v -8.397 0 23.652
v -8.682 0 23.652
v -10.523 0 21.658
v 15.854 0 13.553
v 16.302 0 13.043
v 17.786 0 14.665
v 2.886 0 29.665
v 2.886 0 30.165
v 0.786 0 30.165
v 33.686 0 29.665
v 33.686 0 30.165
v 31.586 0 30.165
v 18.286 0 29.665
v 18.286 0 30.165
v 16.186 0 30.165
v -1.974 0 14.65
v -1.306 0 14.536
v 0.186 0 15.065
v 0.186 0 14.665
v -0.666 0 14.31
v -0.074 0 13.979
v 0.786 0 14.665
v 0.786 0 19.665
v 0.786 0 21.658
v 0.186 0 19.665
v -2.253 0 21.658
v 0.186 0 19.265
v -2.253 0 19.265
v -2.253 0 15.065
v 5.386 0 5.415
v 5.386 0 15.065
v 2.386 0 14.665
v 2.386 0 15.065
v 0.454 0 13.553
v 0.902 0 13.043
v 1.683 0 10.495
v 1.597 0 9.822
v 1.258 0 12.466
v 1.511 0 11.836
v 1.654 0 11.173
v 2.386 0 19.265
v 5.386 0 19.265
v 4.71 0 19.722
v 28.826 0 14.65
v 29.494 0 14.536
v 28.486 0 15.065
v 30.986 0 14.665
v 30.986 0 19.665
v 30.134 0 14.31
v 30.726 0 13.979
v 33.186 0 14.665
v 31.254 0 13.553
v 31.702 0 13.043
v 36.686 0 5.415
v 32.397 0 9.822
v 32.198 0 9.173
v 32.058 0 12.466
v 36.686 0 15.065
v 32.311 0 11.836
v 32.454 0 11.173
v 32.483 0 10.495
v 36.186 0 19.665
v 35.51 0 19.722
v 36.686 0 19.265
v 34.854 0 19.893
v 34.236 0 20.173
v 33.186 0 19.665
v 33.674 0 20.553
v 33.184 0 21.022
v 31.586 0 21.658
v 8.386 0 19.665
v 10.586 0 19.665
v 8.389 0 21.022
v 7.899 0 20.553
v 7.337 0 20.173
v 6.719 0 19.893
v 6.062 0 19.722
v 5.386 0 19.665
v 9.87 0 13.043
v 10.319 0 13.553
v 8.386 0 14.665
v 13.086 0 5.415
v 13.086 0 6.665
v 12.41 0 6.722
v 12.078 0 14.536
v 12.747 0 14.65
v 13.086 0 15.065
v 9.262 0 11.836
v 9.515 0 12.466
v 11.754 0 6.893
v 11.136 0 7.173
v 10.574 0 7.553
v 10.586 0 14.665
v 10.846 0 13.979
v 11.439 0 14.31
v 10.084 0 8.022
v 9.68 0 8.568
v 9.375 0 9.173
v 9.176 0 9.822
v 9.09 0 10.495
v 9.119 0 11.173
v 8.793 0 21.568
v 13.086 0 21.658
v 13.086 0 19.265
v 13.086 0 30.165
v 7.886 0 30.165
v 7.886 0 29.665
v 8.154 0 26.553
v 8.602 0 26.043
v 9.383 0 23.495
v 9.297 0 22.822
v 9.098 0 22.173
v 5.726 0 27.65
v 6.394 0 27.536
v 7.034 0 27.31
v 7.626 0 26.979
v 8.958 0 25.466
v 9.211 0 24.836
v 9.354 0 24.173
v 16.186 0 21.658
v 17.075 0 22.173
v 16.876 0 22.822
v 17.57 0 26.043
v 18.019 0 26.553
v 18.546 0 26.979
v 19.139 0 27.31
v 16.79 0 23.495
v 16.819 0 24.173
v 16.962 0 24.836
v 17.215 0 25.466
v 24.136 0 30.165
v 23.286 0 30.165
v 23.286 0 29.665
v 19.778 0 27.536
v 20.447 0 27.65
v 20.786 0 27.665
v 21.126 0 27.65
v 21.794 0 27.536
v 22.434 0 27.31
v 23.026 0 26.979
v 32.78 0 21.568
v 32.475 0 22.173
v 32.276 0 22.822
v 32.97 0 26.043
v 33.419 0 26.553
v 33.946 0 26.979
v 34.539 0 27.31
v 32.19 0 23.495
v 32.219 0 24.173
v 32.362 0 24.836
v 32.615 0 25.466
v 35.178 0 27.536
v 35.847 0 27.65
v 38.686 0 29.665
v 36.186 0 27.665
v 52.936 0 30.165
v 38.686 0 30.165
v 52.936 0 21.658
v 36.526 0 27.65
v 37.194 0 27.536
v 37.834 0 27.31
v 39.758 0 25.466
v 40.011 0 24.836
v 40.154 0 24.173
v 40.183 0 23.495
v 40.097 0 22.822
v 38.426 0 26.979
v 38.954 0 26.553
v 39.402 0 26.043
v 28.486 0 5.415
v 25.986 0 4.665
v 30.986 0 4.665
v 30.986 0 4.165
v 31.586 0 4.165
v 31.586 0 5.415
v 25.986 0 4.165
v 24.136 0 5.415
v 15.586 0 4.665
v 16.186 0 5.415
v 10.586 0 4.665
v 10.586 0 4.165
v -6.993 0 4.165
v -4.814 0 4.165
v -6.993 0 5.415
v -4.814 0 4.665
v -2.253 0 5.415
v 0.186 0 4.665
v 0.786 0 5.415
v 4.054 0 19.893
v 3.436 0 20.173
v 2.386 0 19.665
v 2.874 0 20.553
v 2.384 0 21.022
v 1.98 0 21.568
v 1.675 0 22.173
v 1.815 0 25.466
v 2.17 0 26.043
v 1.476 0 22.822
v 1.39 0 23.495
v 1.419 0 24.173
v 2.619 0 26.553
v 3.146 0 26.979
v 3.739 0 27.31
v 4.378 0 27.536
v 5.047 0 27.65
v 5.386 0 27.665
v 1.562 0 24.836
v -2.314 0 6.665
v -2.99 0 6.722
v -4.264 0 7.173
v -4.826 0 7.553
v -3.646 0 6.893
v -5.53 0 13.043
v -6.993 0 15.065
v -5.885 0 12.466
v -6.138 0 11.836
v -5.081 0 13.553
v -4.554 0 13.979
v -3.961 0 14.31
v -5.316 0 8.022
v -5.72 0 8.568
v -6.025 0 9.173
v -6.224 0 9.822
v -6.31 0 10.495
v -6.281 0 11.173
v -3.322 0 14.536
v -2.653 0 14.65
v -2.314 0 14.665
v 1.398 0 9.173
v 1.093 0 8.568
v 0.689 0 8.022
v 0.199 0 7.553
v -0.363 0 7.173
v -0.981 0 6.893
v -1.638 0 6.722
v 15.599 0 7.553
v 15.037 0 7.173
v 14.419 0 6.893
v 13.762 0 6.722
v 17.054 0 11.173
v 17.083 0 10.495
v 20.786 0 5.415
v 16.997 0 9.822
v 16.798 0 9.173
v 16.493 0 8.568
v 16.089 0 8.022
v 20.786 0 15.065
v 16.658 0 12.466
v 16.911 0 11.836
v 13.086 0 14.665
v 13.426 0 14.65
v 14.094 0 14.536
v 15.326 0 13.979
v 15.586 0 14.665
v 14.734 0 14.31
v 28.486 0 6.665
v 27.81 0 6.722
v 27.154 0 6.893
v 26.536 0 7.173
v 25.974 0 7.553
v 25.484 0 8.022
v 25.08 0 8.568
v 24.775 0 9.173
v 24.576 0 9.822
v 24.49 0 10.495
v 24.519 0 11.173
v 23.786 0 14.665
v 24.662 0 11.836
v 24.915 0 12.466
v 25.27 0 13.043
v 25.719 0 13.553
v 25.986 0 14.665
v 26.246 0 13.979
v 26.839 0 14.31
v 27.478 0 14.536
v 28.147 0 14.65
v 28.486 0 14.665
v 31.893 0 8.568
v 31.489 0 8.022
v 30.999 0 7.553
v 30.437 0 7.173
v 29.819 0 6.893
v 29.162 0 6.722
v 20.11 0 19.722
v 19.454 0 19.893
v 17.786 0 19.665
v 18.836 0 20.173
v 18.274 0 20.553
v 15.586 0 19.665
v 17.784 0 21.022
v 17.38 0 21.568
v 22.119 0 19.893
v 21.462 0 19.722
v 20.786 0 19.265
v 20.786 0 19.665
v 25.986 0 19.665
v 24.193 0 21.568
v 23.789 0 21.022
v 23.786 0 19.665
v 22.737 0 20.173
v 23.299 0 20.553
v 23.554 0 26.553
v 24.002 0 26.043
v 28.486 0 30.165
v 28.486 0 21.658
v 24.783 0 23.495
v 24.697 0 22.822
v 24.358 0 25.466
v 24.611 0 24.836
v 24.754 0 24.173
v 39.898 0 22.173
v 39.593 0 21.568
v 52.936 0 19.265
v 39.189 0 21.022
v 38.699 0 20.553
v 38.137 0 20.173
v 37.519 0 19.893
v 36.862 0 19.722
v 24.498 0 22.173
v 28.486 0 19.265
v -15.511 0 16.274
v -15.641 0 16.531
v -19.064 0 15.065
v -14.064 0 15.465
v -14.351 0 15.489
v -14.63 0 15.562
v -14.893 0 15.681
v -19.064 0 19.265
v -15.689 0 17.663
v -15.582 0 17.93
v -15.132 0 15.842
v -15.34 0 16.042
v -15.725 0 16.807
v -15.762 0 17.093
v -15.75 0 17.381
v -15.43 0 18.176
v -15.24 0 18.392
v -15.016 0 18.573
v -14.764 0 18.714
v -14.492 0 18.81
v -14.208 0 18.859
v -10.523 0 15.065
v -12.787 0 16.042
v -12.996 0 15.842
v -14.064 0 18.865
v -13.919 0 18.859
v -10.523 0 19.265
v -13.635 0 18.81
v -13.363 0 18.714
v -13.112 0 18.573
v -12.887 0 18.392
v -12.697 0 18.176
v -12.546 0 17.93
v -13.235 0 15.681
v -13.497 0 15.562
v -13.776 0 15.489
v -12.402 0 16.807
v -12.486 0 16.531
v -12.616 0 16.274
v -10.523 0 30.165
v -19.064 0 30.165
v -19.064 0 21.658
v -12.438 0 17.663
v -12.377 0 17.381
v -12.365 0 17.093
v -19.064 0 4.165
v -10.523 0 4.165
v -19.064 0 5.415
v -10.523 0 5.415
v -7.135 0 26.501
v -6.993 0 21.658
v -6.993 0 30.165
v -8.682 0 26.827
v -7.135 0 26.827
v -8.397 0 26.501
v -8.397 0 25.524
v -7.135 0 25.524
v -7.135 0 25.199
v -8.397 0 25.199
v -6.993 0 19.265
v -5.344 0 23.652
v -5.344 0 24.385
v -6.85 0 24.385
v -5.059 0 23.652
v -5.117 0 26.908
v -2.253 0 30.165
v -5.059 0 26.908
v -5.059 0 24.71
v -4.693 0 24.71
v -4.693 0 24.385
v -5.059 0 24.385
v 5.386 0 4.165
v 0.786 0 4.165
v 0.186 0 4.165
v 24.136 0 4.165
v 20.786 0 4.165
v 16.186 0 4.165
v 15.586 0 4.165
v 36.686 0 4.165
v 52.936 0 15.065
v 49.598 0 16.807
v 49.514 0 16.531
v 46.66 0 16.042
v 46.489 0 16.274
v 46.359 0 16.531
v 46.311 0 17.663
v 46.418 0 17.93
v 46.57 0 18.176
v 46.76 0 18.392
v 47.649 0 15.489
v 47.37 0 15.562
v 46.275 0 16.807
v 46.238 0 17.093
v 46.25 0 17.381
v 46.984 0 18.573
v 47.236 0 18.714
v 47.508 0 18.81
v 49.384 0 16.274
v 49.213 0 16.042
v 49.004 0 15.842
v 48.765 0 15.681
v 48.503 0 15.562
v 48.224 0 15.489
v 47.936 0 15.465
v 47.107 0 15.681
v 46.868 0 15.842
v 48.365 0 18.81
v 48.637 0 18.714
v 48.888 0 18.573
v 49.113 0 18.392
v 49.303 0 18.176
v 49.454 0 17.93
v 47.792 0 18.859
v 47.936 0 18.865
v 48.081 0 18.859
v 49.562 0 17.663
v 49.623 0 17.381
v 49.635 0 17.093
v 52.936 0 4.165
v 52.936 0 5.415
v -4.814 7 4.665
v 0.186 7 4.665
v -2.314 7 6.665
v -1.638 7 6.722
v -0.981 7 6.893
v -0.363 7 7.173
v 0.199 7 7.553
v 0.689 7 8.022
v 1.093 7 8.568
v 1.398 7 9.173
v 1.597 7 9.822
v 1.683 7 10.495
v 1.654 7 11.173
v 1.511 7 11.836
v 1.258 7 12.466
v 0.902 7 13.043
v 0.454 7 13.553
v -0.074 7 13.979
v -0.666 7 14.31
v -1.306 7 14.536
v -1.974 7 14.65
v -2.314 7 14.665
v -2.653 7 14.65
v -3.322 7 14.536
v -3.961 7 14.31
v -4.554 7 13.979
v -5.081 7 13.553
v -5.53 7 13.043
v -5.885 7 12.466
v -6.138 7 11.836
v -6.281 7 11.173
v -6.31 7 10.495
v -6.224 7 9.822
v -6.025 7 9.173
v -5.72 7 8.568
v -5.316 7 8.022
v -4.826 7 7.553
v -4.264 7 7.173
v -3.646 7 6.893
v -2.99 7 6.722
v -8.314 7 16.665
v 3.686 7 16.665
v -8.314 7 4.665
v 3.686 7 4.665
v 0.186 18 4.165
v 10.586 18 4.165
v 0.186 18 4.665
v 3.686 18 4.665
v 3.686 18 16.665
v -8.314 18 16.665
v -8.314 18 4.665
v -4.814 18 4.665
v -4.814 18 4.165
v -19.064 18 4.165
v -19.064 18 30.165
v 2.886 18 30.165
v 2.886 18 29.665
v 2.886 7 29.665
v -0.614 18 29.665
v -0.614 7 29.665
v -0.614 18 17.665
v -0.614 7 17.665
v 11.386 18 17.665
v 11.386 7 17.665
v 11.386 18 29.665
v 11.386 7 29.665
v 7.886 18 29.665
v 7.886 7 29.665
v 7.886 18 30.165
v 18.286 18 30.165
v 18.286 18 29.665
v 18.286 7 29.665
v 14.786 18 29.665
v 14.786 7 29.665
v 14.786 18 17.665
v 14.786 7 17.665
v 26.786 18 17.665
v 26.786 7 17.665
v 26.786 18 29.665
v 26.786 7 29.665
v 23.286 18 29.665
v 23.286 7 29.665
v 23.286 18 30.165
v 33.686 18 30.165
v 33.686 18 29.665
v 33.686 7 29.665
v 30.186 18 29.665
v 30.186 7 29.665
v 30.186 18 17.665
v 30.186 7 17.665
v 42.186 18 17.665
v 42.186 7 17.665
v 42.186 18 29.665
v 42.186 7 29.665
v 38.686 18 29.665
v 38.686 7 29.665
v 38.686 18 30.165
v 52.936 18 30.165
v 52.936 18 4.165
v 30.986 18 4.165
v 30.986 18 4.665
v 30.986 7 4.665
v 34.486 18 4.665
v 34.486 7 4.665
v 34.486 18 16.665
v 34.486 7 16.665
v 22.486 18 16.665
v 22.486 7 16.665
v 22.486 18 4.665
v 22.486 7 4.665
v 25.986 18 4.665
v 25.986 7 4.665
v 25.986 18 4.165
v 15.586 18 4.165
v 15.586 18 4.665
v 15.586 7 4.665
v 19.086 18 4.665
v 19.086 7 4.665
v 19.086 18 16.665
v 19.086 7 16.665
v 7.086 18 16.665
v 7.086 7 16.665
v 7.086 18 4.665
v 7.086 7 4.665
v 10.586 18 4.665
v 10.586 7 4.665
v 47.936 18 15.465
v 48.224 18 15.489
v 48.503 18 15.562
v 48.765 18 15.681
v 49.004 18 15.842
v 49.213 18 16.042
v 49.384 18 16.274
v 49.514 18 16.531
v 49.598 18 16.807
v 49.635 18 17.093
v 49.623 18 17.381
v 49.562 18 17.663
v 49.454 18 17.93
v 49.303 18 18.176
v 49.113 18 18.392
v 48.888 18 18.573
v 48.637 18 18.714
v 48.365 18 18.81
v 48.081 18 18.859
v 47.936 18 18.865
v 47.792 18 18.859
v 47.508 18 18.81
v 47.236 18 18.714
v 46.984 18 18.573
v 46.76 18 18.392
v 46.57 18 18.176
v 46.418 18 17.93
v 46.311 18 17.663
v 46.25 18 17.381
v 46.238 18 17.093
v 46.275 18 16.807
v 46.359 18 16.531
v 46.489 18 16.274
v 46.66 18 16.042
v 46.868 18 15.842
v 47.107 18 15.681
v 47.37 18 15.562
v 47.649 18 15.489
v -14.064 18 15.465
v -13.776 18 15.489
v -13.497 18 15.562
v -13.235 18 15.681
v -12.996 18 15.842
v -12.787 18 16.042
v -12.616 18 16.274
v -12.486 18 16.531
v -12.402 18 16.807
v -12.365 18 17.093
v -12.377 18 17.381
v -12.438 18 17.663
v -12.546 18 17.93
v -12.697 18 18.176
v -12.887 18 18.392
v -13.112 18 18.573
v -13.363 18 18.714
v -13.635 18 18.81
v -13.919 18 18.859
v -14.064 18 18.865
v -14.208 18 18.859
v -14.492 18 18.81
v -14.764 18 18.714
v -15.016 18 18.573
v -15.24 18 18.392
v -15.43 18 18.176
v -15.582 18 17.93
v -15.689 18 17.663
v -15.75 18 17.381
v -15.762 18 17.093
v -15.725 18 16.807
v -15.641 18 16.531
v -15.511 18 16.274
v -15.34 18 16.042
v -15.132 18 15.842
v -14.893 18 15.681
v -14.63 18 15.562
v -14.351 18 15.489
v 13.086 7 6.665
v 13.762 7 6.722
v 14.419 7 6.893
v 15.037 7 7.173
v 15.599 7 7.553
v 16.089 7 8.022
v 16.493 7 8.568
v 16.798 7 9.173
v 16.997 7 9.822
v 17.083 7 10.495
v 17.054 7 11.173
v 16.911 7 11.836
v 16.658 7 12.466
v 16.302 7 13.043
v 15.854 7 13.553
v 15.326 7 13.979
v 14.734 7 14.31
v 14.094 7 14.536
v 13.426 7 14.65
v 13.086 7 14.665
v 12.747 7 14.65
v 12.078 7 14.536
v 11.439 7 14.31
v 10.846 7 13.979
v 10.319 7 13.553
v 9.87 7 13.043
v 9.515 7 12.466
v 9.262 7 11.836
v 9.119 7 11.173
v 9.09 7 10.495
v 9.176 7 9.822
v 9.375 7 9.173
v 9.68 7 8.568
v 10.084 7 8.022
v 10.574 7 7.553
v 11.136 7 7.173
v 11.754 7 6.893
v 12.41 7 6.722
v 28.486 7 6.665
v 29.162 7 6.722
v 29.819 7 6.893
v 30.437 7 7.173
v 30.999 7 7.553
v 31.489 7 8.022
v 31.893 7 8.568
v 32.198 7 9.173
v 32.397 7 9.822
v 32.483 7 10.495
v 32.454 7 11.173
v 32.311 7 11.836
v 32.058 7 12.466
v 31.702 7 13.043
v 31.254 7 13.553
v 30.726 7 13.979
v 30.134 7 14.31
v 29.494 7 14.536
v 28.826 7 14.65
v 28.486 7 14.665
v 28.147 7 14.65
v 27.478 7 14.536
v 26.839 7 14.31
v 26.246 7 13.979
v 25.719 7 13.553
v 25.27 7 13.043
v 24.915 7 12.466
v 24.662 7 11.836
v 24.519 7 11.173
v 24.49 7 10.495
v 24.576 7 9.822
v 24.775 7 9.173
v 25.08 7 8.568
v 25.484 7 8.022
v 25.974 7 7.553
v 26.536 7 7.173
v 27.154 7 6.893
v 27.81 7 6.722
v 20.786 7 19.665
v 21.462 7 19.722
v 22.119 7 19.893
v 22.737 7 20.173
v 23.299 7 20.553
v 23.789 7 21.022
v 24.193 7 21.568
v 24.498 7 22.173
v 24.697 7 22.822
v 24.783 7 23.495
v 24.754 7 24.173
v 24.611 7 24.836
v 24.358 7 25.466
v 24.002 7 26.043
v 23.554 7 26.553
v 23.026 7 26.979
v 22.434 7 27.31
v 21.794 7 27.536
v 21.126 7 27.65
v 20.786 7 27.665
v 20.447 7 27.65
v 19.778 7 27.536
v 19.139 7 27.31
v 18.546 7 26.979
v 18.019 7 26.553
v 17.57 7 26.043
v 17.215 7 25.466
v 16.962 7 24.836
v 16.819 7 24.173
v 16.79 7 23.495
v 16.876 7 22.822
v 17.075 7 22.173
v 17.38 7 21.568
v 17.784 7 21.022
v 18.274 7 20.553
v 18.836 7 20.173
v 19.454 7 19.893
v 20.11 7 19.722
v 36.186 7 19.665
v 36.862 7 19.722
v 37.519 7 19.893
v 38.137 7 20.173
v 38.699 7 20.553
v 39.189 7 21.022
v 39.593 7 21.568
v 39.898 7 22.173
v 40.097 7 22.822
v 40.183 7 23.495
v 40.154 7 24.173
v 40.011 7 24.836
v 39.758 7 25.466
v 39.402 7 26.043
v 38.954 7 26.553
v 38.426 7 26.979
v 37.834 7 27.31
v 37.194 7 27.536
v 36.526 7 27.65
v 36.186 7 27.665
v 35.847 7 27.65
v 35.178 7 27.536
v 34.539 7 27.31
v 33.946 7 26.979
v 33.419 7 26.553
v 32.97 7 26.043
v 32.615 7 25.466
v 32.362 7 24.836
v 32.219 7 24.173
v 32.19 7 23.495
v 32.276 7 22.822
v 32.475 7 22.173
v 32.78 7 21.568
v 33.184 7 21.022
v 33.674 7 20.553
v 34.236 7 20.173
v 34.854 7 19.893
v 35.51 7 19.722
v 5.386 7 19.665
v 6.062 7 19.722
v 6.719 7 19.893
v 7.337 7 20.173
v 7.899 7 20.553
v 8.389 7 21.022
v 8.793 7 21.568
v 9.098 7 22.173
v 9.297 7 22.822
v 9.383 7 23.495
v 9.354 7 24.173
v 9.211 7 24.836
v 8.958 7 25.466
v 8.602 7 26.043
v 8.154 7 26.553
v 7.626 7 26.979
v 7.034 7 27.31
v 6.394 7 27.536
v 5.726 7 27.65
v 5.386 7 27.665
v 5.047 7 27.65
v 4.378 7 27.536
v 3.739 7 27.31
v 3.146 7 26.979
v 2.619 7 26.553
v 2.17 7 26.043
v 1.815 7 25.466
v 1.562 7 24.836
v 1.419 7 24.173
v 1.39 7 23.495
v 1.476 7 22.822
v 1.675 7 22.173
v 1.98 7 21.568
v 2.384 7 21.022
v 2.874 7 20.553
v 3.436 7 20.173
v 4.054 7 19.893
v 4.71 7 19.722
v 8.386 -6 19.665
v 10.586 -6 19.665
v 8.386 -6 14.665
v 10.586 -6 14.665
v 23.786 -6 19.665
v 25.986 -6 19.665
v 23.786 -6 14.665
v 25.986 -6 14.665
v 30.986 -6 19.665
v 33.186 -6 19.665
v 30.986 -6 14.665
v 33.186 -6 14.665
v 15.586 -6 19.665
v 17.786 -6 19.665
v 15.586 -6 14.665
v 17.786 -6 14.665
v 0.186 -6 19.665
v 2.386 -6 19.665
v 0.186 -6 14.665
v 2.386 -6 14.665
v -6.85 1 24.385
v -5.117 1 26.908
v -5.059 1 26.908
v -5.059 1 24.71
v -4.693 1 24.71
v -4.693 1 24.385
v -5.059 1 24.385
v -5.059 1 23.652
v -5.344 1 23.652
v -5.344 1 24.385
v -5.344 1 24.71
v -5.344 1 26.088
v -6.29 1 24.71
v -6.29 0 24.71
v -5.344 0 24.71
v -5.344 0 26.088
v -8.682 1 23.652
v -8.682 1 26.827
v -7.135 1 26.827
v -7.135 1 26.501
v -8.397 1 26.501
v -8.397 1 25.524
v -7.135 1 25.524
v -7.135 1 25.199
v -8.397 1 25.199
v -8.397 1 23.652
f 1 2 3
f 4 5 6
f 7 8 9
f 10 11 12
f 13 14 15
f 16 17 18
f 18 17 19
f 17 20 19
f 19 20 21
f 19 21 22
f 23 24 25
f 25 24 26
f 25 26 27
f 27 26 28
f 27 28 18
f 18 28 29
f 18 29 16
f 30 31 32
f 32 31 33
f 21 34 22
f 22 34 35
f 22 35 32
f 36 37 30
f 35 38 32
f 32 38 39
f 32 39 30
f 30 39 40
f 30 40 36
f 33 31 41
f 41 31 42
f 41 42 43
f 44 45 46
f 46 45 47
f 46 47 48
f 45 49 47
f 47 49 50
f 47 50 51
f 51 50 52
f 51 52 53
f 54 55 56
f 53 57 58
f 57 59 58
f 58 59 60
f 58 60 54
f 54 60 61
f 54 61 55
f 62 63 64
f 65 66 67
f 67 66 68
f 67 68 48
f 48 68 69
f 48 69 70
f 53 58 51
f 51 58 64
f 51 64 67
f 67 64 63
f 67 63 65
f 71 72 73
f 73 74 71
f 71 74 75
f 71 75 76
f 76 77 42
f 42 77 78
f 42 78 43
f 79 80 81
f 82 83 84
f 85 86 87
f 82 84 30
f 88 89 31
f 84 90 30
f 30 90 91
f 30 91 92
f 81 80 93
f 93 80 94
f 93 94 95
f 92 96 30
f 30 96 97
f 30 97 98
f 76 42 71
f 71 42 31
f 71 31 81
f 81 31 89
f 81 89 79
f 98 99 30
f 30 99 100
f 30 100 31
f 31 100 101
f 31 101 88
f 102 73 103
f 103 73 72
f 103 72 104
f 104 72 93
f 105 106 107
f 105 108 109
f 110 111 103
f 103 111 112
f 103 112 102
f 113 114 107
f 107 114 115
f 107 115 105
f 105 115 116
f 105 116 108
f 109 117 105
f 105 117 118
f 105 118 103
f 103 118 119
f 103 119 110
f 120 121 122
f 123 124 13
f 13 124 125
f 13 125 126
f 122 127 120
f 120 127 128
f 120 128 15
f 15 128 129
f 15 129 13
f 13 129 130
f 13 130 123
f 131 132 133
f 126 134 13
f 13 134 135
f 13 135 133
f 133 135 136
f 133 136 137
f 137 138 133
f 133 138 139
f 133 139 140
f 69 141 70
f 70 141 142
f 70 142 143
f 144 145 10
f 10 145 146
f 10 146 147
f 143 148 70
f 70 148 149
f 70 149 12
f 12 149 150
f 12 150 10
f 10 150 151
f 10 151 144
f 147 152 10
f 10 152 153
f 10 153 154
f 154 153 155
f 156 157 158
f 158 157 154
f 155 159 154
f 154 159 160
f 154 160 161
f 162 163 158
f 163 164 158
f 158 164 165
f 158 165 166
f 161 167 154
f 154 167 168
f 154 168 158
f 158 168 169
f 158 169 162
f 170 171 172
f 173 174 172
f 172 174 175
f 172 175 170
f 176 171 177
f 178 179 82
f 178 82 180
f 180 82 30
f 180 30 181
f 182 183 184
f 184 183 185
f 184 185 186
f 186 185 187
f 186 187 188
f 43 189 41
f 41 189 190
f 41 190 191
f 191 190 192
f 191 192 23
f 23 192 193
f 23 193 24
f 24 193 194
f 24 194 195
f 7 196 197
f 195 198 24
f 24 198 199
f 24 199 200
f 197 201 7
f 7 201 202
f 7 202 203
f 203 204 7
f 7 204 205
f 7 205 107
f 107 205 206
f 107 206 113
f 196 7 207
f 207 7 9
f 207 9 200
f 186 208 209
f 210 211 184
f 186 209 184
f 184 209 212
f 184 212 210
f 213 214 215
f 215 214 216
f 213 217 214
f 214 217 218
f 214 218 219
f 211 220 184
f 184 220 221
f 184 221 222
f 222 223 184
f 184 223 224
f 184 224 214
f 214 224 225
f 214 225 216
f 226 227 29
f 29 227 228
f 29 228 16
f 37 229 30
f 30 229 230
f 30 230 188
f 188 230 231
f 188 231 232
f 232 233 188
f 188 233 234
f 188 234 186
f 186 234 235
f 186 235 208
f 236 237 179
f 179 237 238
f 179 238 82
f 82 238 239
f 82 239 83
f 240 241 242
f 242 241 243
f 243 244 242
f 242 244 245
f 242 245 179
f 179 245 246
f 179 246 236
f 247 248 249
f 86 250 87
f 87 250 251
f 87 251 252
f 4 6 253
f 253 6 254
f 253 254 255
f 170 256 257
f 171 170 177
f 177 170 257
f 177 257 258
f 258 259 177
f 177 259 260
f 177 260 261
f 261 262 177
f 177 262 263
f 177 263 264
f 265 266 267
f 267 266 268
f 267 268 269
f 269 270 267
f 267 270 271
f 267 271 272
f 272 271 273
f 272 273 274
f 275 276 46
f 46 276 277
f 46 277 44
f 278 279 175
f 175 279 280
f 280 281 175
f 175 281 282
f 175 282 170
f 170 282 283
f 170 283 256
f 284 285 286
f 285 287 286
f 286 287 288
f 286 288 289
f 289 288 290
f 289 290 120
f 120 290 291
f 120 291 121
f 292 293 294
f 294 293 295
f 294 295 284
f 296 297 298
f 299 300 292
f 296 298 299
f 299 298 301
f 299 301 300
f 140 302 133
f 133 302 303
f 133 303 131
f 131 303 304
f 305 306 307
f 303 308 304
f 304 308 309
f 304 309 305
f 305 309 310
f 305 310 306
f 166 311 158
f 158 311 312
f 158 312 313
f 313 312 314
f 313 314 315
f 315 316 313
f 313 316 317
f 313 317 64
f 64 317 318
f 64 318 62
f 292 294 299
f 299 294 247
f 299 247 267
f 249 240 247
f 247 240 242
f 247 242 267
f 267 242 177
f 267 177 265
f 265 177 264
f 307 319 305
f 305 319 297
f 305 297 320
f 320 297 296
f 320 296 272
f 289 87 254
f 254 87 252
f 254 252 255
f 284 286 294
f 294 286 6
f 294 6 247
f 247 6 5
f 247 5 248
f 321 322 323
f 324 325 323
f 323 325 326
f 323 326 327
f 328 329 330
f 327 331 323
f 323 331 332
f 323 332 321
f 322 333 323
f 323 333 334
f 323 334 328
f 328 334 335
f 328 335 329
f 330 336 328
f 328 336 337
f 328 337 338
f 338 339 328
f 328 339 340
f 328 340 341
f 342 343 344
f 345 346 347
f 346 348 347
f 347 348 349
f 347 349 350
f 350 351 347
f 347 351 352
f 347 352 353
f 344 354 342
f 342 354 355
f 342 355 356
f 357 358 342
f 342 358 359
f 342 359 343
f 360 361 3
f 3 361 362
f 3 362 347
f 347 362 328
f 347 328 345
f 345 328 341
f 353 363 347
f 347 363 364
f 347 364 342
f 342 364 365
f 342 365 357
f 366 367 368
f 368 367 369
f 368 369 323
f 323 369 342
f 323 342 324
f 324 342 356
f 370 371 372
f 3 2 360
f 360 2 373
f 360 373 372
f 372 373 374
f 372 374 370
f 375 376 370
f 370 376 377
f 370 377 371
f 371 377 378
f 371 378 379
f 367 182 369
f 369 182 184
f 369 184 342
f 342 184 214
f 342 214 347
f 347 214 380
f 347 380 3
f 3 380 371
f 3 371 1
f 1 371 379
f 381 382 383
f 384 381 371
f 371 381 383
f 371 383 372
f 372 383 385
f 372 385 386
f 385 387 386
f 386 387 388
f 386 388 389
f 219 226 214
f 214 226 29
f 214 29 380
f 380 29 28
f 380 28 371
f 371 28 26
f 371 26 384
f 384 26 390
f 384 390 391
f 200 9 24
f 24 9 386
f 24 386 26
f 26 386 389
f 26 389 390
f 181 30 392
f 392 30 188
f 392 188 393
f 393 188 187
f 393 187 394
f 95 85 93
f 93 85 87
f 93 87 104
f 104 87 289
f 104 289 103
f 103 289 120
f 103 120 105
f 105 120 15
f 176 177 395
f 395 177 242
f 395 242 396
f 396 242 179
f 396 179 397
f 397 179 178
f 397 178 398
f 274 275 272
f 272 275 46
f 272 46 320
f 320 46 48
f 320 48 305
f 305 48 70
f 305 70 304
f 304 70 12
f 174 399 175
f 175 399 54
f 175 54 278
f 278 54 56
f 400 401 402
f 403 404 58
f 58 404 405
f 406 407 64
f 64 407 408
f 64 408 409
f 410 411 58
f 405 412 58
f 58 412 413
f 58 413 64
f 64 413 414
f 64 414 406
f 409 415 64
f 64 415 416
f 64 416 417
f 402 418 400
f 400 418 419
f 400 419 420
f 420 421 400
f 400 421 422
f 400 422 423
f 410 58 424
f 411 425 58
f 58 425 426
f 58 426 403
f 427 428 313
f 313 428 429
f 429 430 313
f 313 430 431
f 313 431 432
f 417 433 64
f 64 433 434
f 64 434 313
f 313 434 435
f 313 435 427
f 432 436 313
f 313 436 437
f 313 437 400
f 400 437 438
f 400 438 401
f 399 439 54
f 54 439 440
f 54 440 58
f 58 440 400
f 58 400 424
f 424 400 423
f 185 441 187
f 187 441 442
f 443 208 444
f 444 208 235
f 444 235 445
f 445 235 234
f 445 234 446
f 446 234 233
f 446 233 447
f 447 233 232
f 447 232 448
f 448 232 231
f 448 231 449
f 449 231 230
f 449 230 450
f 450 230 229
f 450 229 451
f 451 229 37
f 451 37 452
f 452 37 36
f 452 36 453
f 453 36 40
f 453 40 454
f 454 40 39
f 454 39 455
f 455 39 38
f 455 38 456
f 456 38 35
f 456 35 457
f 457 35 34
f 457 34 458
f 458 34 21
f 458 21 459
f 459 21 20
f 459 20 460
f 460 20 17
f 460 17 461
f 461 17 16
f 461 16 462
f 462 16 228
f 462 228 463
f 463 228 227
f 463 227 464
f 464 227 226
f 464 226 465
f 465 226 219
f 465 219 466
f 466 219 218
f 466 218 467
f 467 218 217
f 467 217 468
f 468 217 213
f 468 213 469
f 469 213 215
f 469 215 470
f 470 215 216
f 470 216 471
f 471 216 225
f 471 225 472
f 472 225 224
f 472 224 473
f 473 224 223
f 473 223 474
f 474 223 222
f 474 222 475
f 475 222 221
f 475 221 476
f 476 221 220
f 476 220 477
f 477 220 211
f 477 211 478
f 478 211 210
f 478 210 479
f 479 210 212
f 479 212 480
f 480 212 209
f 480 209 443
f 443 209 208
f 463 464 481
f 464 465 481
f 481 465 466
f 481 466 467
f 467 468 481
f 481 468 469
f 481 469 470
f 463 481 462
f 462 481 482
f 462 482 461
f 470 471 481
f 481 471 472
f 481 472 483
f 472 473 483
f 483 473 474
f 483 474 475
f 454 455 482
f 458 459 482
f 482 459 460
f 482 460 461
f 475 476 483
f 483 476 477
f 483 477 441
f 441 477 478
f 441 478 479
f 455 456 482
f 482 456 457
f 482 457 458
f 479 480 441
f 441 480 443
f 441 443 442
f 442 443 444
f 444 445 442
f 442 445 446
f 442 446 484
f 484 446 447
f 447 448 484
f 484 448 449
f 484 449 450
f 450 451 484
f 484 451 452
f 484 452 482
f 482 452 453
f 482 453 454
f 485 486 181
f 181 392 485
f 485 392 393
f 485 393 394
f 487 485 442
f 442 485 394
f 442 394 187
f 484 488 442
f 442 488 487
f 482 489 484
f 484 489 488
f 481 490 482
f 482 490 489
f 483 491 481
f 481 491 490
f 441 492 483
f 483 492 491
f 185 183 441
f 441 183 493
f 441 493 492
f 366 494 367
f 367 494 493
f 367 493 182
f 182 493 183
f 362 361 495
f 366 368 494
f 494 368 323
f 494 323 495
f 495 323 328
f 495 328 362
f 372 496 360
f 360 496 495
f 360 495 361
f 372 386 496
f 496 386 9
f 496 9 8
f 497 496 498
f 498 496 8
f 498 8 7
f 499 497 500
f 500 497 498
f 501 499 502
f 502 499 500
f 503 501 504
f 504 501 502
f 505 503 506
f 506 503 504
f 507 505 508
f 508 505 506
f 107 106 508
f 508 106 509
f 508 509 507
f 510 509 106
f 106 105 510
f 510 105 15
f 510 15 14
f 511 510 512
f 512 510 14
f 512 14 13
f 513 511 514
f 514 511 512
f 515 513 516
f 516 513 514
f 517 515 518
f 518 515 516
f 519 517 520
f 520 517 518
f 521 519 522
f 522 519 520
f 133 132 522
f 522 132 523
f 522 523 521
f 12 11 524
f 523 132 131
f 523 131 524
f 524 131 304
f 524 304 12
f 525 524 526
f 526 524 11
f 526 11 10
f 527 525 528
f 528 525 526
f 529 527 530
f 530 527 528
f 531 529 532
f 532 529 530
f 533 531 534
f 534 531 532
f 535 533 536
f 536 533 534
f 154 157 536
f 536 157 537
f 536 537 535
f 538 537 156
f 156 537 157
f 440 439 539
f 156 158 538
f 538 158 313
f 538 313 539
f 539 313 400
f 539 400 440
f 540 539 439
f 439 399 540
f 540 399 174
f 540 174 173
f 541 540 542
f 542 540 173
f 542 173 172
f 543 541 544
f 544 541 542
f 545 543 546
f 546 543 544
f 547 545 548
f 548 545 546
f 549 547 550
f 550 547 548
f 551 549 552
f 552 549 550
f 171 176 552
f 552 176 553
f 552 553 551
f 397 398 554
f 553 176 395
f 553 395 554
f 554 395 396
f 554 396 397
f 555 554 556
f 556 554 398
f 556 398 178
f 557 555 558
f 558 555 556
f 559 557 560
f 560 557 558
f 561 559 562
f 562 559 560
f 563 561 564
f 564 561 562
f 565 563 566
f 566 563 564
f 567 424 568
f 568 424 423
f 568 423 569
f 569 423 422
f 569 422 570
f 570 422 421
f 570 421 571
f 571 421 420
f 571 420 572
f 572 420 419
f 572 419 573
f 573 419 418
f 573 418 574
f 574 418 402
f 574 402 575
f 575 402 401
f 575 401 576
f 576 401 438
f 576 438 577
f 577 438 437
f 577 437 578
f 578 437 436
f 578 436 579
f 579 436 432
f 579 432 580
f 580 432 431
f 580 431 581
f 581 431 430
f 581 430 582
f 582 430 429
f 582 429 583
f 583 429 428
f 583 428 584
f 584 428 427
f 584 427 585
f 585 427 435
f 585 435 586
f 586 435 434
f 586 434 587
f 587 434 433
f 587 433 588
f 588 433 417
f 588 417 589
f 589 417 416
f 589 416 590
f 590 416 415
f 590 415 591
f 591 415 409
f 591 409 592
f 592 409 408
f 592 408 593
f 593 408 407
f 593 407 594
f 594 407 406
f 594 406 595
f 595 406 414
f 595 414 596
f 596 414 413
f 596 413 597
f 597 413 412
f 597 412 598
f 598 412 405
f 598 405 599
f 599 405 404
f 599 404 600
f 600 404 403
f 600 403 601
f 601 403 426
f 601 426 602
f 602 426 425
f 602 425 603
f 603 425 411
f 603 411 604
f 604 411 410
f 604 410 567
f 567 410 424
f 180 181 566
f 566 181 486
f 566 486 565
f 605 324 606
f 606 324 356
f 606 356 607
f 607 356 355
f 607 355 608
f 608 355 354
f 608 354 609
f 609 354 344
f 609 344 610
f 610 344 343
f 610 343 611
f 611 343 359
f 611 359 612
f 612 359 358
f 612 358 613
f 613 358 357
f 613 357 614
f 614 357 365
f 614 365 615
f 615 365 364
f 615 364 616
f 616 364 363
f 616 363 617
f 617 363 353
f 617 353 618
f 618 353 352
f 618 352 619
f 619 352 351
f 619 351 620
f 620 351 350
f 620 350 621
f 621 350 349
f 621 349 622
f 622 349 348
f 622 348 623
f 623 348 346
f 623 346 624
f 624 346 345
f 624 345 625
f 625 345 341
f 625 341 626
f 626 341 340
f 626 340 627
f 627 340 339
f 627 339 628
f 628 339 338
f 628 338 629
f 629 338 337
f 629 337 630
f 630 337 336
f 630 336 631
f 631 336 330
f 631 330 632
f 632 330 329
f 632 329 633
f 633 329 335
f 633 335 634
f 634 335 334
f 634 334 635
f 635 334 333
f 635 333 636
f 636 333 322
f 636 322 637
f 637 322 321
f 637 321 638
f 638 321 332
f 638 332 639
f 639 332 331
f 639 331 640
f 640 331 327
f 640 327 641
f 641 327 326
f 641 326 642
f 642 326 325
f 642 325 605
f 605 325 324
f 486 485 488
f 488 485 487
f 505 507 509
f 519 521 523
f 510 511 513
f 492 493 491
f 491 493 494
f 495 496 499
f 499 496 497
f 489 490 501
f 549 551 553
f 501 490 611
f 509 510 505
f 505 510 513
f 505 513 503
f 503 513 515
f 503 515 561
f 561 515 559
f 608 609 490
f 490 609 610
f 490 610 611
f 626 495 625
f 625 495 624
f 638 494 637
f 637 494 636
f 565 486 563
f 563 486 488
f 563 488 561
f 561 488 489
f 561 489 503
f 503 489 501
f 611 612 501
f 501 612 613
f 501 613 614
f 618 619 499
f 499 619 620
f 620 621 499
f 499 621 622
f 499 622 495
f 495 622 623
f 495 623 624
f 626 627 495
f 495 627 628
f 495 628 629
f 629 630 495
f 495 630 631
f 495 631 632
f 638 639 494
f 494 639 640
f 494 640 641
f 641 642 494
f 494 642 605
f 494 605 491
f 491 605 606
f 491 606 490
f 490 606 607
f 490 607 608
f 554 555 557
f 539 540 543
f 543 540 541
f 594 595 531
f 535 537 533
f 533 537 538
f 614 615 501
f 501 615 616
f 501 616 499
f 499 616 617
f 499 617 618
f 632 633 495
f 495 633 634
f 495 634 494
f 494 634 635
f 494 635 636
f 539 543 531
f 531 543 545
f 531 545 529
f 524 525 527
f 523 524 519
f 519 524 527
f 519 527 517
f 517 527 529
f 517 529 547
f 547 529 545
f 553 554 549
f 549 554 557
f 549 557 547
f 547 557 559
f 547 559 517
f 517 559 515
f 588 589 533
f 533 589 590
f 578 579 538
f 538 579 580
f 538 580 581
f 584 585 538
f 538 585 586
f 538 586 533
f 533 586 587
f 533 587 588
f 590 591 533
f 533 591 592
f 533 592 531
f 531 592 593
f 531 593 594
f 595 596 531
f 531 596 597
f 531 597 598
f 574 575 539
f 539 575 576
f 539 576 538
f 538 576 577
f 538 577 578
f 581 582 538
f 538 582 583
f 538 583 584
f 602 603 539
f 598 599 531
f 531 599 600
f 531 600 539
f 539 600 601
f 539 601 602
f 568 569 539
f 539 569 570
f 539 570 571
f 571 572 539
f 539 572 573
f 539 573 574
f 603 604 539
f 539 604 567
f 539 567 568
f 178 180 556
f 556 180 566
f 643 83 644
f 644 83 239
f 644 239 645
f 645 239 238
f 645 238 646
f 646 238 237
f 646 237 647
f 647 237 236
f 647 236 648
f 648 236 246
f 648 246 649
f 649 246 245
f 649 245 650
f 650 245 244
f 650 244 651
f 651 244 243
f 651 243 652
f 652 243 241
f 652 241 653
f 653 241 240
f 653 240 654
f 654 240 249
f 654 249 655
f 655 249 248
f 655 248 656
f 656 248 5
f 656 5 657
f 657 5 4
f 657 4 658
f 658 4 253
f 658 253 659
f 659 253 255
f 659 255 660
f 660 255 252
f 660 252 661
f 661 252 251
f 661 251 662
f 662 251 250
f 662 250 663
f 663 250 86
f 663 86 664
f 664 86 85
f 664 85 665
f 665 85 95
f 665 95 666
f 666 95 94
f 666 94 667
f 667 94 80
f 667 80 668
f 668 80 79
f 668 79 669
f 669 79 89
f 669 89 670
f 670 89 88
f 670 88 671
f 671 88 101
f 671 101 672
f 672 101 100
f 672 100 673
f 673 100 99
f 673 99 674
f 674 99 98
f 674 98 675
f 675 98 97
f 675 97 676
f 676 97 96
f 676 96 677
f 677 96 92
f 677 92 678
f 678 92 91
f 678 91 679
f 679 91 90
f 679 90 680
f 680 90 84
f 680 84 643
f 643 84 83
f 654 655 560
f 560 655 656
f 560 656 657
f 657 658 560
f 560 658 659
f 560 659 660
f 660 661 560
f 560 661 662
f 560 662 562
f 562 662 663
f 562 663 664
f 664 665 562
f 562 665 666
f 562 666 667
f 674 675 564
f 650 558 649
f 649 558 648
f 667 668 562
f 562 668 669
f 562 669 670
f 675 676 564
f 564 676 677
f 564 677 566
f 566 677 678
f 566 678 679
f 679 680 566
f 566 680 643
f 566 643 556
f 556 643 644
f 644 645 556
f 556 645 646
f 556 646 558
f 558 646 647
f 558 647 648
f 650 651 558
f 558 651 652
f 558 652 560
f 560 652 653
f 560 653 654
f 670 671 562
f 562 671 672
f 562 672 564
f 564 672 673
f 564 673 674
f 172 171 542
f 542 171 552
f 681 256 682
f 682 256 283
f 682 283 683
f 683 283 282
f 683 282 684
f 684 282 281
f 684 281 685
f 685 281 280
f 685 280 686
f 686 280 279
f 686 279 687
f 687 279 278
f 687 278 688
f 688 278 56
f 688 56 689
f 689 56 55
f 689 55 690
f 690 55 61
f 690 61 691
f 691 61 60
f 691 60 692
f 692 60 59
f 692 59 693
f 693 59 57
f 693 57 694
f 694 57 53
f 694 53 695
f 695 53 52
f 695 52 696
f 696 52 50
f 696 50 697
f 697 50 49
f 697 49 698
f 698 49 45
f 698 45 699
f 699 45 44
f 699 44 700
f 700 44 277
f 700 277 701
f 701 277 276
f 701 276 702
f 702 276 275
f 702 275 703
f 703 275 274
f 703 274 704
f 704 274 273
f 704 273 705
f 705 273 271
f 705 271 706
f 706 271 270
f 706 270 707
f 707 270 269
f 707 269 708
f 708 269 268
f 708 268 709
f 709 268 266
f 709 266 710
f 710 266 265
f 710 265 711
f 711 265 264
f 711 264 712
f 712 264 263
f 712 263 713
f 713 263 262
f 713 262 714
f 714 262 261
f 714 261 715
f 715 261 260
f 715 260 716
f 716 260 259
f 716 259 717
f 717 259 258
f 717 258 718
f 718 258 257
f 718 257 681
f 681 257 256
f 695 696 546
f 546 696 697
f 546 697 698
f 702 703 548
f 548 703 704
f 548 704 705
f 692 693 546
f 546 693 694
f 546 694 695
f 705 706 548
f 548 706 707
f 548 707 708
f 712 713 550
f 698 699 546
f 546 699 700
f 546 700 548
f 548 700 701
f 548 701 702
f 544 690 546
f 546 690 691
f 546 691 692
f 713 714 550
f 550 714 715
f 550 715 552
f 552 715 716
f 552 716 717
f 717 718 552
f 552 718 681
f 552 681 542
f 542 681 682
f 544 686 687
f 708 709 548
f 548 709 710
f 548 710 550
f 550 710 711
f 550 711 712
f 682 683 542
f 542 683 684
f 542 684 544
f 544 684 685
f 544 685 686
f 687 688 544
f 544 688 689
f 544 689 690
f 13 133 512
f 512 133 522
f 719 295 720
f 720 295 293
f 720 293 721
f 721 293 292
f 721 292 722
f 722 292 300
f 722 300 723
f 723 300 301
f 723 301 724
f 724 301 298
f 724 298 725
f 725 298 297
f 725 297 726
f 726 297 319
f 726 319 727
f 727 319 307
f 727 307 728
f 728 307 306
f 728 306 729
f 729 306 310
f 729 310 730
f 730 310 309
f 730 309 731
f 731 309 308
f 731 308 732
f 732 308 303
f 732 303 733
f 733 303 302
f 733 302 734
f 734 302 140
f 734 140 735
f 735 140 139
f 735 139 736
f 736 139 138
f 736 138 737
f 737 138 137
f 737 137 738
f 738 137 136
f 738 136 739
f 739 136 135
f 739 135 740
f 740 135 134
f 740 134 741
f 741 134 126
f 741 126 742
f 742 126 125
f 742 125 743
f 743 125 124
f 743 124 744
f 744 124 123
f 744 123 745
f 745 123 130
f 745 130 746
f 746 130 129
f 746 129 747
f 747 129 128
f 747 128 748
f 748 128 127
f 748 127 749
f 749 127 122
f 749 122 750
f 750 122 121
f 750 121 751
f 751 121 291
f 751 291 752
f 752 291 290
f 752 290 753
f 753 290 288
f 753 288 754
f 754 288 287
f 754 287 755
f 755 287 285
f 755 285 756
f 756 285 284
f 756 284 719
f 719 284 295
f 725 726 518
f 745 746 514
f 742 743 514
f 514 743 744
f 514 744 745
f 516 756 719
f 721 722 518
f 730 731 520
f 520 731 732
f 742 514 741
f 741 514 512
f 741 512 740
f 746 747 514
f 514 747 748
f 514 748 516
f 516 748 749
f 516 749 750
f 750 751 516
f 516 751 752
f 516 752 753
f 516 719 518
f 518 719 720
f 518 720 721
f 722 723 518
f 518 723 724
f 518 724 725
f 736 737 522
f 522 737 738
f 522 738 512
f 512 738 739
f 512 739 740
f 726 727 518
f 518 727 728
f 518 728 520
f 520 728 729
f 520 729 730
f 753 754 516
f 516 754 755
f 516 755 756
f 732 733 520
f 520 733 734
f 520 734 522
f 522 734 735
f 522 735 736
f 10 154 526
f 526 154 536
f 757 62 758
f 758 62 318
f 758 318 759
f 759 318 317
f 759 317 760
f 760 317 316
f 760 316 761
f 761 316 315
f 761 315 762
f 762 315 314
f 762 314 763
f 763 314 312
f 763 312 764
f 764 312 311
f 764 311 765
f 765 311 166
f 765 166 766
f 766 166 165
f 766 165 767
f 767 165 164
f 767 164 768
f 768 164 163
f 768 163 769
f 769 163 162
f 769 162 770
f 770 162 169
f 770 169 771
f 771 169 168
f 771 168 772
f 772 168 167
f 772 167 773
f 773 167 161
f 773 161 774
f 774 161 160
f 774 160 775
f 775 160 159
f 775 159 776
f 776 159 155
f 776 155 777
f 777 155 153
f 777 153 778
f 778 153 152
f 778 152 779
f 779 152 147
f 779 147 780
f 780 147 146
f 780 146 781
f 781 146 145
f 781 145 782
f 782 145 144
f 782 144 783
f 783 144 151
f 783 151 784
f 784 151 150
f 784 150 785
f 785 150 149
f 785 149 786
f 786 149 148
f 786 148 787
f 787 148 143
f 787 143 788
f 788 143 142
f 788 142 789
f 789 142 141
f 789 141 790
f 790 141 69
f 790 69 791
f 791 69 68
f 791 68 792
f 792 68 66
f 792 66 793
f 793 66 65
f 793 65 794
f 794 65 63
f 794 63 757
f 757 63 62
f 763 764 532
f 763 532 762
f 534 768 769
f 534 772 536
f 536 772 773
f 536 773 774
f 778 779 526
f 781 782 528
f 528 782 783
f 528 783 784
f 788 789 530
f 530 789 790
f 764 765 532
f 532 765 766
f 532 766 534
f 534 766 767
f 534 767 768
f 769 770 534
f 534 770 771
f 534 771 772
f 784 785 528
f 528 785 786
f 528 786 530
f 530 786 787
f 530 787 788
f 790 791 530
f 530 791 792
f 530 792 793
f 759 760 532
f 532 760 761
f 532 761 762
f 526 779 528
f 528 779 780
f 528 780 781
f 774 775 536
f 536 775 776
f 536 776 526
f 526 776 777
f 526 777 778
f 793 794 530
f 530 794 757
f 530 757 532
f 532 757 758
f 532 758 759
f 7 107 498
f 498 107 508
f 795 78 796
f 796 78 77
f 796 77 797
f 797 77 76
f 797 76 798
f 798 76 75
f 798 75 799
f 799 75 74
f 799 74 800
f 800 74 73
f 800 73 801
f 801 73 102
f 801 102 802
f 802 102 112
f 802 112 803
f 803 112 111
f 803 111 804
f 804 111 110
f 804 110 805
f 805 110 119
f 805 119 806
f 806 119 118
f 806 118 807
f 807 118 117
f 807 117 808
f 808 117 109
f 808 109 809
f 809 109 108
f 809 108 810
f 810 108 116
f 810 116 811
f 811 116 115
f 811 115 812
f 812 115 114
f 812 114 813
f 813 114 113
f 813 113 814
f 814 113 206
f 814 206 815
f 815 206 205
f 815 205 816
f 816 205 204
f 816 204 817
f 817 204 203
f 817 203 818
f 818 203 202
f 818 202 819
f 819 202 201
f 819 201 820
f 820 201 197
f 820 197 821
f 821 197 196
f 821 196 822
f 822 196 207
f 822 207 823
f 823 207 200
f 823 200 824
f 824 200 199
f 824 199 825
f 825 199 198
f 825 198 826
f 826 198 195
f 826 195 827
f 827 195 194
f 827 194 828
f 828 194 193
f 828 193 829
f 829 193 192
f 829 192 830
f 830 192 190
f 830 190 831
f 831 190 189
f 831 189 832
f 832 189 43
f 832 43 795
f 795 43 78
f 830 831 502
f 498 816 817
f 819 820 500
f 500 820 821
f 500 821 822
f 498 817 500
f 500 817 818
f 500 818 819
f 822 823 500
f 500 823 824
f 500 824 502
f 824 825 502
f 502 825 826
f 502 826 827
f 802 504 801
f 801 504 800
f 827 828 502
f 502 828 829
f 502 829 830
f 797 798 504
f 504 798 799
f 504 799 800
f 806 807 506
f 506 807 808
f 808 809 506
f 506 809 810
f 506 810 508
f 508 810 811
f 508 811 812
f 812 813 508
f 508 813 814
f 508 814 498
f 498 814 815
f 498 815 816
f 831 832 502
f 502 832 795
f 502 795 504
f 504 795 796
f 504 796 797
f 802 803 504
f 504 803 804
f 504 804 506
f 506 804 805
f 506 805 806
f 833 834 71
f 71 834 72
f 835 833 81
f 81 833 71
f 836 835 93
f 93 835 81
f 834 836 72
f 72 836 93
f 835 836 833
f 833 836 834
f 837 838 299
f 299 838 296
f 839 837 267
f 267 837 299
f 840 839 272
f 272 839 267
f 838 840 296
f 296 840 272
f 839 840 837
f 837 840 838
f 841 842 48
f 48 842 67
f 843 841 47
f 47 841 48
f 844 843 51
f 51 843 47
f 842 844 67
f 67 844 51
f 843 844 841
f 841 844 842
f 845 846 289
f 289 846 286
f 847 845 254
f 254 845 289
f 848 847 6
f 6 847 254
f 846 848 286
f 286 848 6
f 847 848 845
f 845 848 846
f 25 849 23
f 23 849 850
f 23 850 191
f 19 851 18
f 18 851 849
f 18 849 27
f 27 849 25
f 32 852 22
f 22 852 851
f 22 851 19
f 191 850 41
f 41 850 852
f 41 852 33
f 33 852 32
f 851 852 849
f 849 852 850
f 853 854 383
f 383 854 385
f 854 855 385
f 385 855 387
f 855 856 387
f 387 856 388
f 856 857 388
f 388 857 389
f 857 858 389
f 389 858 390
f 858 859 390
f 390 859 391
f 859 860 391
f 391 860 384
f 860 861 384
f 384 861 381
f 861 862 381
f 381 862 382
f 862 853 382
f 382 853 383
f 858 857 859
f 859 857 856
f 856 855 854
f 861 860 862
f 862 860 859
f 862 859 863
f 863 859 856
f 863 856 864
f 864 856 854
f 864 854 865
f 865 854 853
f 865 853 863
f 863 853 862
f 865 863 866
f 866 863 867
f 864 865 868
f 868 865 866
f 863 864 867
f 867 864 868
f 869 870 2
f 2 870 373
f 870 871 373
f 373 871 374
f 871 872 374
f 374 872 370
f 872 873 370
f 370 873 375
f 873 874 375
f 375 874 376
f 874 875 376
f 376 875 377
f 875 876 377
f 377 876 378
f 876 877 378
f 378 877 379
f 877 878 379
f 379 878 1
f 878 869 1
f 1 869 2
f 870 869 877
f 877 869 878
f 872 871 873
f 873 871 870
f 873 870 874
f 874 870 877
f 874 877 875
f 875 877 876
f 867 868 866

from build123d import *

# Parameters (mm, degrees)
SKETCH1_R               = 4
BOSS_EXTRUDE1_DEPTH     = 7
BOSS_EXTRUDE1_2_DEPTH   = 7
BOSS_EXTRUDE1_3_DEPTH   = 7
BOSS_EXTRUDE1_4_DEPTH   = 7
BOSS_EXTRUDE1_5_DEPTH   = 7
BOSS_EXTRUDE1_6_DEPTH   = 7
BOSS_EXTRUDE2_OUTLINE_R = 1.700000005
BOSS_EXTRUDE2_DEPTH     = 18
SKETCH2_W               = 2.2
SKETCH2_H               = 5.00000001
BOSS_EXTRUDE3_DEPTH     = 6
CUT_EXTRUDE1_DEPTH      = 1


# Read off the part's stored shape, not the designer's step: Boss-Extrude2
with BuildPart() as part:
    # Sketch1 → Boss-Extrude1 (new body)
    with BuildSketch(Plane(origin=(0, 0, 0), x_dir=(1, 0, 0), z_dir=(0, 1, 0))):
        Polygon((3.686387934, -16.664883738), (3.686388262, -4.664883738), (-8.313611738, -4.66488341), (-8.313612066, -16.66488341), align=None)
        with Locations(Location((-2.313611902, -10.664883574, 0), (0, 0, 270))):
            Circle(SKETCH1_R, mode=Mode.SUBTRACT)
    extrude(amount=BOSS_EXTRUDE1_DEPTH)



with BuildPart() as body_2:
    # Sketch1 → Boss-Extrude1 2 (new body)
    with BuildSketch(Plane(origin=(0, 0, 0), x_dir=(1, 0, 0), z_dir=(0, 1, 0))):
        Polygon((19.086387939, -16.664884095), (19.086388267, -4.664884095), (7.086388267, -4.664883767), (7.086387939, -16.664883767), align=None)
        with Locations(Location((13.086388103, -10.664883931, 0), (0, 0, 270))):
            Circle(SKETCH1_R, mode=Mode.SUBTRACT)
    extrude(amount=BOSS_EXTRUDE1_2_DEPTH)


with BuildPart() as body_3:
    # Sketch1 → Boss-Extrude1 3 (new body)
    with BuildSketch(Plane(origin=(0, 0, 0), x_dir=(1, 0, 0), z_dir=(0, 1, 0))):
        Polygon((34.486387949, -16.66488445), (34.486388277, -4.66488445), (22.486388277, -4.664884122), (22.486387949, -16.664884122), align=None)
        with Locations(Location((28.486388113, -10.664884286, 0), (0, 0, 270))):
            Circle(SKETCH1_R, mode=Mode.SUBTRACT)
    extrude(amount=BOSS_EXTRUDE1_3_DEPTH)


with BuildPart() as body_4:
    # Sketch1 → Boss-Extrude1 4 (new body)
    with BuildSketch(Plane(origin=(0, 0, 0), x_dir=(1, 0, 0), z_dir=(0, 1, 0))):
        Polygon((14.786387887, -17.664883977), (14.786387559, -29.664883977), (26.786387559, -29.664884305), (26.786387887, -17.664884305), align=None)
        with Locations(Location((20.786387723, -23.664884141, 0), (0, 0, 270))):
            Circle(SKETCH1_R, mode=Mode.SUBTRACT)
    extrude(amount=BOSS_EXTRUDE1_4_DEPTH)


with BuildPart() as body_5:
    # Sketch1 → Boss-Extrude1 5 (new body)
    with BuildSketch(Plane(origin=(0, 0, 0), x_dir=(1, 0, 0), z_dir=(0, 1, 0))):
        Polygon((30.186386338, -17.664884333), (30.18638601, -29.664884333), (42.18638601, -29.664884661), (42.186386338, -17.664884661), align=None)
        with Locations(Location((36.186386174, -23.664884497, 0), (0, 0, 270))):
            Circle(SKETCH1_R, mode=Mode.SUBTRACT)
    extrude(amount=BOSS_EXTRUDE1_5_DEPTH)


with BuildPart() as body_6:
    # Sketch1 → Boss-Extrude1 6 (new body)
    with BuildSketch(Plane(origin=(0, 0, 0), x_dir=(1, 0, 0), z_dir=(0, 1, 0))):
        Polygon((-0.613612103, -17.664883618), (-0.613612431, -29.664883618), (11.386387569, -29.664883947), (11.386387897, -17.664883947), align=None)
        with Locations(Location((5.386387733, -23.664883782, 0), (0, 0, 270))):
            Circle(SKETCH1_R, mode=Mode.SUBTRACT)
    extrude(amount=BOSS_EXTRUDE1_6_DEPTH)


with BuildPart() as part_1:
    add(part.part)

    add(body_2.part)  # Boss-Extrude2 merges body 2

    add(body_3.part)  # Boss-Extrude2 merges body 3

    add(body_4.part)  # Boss-Extrude2 merges body 4

    add(body_5.part)  # Boss-Extrude2 merges body 5

    add(body_6.part)  # Boss-Extrude2 merges body 6
    # Boss-Extrude2 outline → Boss-Extrude2 (add)
    with BuildSketch(Plane(origin=(0, 0, 0), x_dir=(1, 0, 0), z_dir=(0, 1, 0))):
        Polygon((10.586388267, -4.664883862), (10.586388281, -4.164883862), (0.186388276, -4.164883578), (0.186388262, -4.664883642), (3.686388262, -4.664883738), (3.686387934, -16.664883738), (-8.313612066, -16.66488341), (-8.313611738, -4.66488341), (-4.813611731, -4.664883505), (-4.813611724, -4.164883505), (-19.06361173, -4.164883116), (-19.06361244, -30.164883114), (2.886387555, -30.164883714), (2.886387569, -29.664883714), (-0.613612431, -29.664883618), (-0.613612103, -17.664883618), (11.386387897, -17.664883947), (11.386387569, -29.664883947), (7.886387562, -29.664883851), (7.886387555, -30.164883851), (18.286387545, -30.164884073), (18.286387559, -29.664884073), (14.786387559, -29.664883977), (14.786387887, -17.664883977), (26.786387887, -17.664884305), (26.786387559, -29.664884305), (23.286387552, -29.66488421), (23.286387545, -30.16488421), (33.686385997, -30.164884494), (33.68638601, -29.664884428), (30.18638601, -29.664884333), (30.186386338, -17.664884333), (42.186386338, -17.664884661), (42.18638601, -29.664884661), (38.686386004, -29.664884565), (38.686385997, -30.164884565), (52.93638756, -30.164884954), (52.93638827, -4.164885084), (30.986388291, -4.164884354), (30.986388277, -4.664884354), (34.486388277, -4.66488445), (34.486387949, -16.66488445), (22.486387949, -16.664884122), (22.486388277, -4.664884122), (25.986388284, -4.664884218), (25.986388291, -4.164884218), (15.586388281, -4.164884108), (15.586388267, -4.664883999), (19.086388267, -4.664884095), (19.086387939, -16.664884095), (7.086387939, -16.664883767), (7.086388267, -4.664883767), align=None)
        with Locations((47.936387915, -17.164884883)):
            Circle(BOSS_EXTRUDE2_OUTLINE_R, mode=Mode.SUBTRACT)
        with Locations((-14.063612085, -17.164883252)):
            Circle(BOSS_EXTRUDE2_OUTLINE_R, mode=Mode.SUBTRACT)
    extrude(amount=BOSS_EXTRUDE2_DEPTH)

    # Sketch2 → Boss-Extrude3 (add)
    with BuildSketch(Plane.XZ):
        Polygon((10.586387955, 19.664883873), (10.586388061, 14.664883862), (8.386388061, 14.664883816), (8.386387955, 19.664883826), align=None)
        Polygon((25.986387967, 19.664884228), (25.986388072, 14.664884218), (23.786388072, 14.664884171), (23.786387967, 19.664884182), align=None)
        Polygon((33.186387781, 19.664884438), (33.186387947, 14.664884428), (30.986387947, 14.664884354), (30.986387781, 19.664884365), align=None)
        Polygon((17.786387957, 19.664884055), (17.786388062, 14.664884045), (15.586388062, 14.664883999), (15.586387957, 19.664884009), align=None)
        with Locations((1.286388276, 17.164883628)):
            Rectangle(SKETCH2_W, SKETCH2_H)
    extrude(amount=BOSS_EXTRUDE3_DEPTH)

    # Sketch3 → Cut-Extrude1 (cut)
    # profile 1 of 2: a face of its own
    with BuildSketch(Plane.XZ):
        Polygon((-8.682133254, 26.826855078), (-7.135338382, 26.826855078), (-7.135338382, 26.501214052), (-8.397197357, 26.501214052), (-8.397197357, 25.524290975), (-7.135338382, 25.524290975), (-7.135338382, 25.198649949), (-8.397197357, 25.198649949), (-8.397197357, 23.651855078), (-8.682133254, 23.651855078), align=None)
    # profile 2 of 2: a face of its own
    with BuildSketch(Plane.XZ):
        Polygon((-5.117254448, 26.908265334), (-5.059376844, 26.908265334), (-5.059376844, 24.710188411), (-4.69303069, 24.710188411), (-4.69303069, 24.384547385), (-5.059376844, 24.384547385), (-5.059376844, 23.651855078), (-5.344312741, 23.651855078), (-5.344312741, 24.384547385), (-6.850402485, 24.384547385), align=None)
        Polygon((-5.344312741, 24.710188411), (-5.344312741, 26.087802594), (-6.290070954, 24.710188411), align=None, mode=Mode.SUBTRACT)
    extrude(amount=-CUT_EXTRUDE1_DEPTH, mode=Mode.SUBTRACT)


solid = part_1.part
